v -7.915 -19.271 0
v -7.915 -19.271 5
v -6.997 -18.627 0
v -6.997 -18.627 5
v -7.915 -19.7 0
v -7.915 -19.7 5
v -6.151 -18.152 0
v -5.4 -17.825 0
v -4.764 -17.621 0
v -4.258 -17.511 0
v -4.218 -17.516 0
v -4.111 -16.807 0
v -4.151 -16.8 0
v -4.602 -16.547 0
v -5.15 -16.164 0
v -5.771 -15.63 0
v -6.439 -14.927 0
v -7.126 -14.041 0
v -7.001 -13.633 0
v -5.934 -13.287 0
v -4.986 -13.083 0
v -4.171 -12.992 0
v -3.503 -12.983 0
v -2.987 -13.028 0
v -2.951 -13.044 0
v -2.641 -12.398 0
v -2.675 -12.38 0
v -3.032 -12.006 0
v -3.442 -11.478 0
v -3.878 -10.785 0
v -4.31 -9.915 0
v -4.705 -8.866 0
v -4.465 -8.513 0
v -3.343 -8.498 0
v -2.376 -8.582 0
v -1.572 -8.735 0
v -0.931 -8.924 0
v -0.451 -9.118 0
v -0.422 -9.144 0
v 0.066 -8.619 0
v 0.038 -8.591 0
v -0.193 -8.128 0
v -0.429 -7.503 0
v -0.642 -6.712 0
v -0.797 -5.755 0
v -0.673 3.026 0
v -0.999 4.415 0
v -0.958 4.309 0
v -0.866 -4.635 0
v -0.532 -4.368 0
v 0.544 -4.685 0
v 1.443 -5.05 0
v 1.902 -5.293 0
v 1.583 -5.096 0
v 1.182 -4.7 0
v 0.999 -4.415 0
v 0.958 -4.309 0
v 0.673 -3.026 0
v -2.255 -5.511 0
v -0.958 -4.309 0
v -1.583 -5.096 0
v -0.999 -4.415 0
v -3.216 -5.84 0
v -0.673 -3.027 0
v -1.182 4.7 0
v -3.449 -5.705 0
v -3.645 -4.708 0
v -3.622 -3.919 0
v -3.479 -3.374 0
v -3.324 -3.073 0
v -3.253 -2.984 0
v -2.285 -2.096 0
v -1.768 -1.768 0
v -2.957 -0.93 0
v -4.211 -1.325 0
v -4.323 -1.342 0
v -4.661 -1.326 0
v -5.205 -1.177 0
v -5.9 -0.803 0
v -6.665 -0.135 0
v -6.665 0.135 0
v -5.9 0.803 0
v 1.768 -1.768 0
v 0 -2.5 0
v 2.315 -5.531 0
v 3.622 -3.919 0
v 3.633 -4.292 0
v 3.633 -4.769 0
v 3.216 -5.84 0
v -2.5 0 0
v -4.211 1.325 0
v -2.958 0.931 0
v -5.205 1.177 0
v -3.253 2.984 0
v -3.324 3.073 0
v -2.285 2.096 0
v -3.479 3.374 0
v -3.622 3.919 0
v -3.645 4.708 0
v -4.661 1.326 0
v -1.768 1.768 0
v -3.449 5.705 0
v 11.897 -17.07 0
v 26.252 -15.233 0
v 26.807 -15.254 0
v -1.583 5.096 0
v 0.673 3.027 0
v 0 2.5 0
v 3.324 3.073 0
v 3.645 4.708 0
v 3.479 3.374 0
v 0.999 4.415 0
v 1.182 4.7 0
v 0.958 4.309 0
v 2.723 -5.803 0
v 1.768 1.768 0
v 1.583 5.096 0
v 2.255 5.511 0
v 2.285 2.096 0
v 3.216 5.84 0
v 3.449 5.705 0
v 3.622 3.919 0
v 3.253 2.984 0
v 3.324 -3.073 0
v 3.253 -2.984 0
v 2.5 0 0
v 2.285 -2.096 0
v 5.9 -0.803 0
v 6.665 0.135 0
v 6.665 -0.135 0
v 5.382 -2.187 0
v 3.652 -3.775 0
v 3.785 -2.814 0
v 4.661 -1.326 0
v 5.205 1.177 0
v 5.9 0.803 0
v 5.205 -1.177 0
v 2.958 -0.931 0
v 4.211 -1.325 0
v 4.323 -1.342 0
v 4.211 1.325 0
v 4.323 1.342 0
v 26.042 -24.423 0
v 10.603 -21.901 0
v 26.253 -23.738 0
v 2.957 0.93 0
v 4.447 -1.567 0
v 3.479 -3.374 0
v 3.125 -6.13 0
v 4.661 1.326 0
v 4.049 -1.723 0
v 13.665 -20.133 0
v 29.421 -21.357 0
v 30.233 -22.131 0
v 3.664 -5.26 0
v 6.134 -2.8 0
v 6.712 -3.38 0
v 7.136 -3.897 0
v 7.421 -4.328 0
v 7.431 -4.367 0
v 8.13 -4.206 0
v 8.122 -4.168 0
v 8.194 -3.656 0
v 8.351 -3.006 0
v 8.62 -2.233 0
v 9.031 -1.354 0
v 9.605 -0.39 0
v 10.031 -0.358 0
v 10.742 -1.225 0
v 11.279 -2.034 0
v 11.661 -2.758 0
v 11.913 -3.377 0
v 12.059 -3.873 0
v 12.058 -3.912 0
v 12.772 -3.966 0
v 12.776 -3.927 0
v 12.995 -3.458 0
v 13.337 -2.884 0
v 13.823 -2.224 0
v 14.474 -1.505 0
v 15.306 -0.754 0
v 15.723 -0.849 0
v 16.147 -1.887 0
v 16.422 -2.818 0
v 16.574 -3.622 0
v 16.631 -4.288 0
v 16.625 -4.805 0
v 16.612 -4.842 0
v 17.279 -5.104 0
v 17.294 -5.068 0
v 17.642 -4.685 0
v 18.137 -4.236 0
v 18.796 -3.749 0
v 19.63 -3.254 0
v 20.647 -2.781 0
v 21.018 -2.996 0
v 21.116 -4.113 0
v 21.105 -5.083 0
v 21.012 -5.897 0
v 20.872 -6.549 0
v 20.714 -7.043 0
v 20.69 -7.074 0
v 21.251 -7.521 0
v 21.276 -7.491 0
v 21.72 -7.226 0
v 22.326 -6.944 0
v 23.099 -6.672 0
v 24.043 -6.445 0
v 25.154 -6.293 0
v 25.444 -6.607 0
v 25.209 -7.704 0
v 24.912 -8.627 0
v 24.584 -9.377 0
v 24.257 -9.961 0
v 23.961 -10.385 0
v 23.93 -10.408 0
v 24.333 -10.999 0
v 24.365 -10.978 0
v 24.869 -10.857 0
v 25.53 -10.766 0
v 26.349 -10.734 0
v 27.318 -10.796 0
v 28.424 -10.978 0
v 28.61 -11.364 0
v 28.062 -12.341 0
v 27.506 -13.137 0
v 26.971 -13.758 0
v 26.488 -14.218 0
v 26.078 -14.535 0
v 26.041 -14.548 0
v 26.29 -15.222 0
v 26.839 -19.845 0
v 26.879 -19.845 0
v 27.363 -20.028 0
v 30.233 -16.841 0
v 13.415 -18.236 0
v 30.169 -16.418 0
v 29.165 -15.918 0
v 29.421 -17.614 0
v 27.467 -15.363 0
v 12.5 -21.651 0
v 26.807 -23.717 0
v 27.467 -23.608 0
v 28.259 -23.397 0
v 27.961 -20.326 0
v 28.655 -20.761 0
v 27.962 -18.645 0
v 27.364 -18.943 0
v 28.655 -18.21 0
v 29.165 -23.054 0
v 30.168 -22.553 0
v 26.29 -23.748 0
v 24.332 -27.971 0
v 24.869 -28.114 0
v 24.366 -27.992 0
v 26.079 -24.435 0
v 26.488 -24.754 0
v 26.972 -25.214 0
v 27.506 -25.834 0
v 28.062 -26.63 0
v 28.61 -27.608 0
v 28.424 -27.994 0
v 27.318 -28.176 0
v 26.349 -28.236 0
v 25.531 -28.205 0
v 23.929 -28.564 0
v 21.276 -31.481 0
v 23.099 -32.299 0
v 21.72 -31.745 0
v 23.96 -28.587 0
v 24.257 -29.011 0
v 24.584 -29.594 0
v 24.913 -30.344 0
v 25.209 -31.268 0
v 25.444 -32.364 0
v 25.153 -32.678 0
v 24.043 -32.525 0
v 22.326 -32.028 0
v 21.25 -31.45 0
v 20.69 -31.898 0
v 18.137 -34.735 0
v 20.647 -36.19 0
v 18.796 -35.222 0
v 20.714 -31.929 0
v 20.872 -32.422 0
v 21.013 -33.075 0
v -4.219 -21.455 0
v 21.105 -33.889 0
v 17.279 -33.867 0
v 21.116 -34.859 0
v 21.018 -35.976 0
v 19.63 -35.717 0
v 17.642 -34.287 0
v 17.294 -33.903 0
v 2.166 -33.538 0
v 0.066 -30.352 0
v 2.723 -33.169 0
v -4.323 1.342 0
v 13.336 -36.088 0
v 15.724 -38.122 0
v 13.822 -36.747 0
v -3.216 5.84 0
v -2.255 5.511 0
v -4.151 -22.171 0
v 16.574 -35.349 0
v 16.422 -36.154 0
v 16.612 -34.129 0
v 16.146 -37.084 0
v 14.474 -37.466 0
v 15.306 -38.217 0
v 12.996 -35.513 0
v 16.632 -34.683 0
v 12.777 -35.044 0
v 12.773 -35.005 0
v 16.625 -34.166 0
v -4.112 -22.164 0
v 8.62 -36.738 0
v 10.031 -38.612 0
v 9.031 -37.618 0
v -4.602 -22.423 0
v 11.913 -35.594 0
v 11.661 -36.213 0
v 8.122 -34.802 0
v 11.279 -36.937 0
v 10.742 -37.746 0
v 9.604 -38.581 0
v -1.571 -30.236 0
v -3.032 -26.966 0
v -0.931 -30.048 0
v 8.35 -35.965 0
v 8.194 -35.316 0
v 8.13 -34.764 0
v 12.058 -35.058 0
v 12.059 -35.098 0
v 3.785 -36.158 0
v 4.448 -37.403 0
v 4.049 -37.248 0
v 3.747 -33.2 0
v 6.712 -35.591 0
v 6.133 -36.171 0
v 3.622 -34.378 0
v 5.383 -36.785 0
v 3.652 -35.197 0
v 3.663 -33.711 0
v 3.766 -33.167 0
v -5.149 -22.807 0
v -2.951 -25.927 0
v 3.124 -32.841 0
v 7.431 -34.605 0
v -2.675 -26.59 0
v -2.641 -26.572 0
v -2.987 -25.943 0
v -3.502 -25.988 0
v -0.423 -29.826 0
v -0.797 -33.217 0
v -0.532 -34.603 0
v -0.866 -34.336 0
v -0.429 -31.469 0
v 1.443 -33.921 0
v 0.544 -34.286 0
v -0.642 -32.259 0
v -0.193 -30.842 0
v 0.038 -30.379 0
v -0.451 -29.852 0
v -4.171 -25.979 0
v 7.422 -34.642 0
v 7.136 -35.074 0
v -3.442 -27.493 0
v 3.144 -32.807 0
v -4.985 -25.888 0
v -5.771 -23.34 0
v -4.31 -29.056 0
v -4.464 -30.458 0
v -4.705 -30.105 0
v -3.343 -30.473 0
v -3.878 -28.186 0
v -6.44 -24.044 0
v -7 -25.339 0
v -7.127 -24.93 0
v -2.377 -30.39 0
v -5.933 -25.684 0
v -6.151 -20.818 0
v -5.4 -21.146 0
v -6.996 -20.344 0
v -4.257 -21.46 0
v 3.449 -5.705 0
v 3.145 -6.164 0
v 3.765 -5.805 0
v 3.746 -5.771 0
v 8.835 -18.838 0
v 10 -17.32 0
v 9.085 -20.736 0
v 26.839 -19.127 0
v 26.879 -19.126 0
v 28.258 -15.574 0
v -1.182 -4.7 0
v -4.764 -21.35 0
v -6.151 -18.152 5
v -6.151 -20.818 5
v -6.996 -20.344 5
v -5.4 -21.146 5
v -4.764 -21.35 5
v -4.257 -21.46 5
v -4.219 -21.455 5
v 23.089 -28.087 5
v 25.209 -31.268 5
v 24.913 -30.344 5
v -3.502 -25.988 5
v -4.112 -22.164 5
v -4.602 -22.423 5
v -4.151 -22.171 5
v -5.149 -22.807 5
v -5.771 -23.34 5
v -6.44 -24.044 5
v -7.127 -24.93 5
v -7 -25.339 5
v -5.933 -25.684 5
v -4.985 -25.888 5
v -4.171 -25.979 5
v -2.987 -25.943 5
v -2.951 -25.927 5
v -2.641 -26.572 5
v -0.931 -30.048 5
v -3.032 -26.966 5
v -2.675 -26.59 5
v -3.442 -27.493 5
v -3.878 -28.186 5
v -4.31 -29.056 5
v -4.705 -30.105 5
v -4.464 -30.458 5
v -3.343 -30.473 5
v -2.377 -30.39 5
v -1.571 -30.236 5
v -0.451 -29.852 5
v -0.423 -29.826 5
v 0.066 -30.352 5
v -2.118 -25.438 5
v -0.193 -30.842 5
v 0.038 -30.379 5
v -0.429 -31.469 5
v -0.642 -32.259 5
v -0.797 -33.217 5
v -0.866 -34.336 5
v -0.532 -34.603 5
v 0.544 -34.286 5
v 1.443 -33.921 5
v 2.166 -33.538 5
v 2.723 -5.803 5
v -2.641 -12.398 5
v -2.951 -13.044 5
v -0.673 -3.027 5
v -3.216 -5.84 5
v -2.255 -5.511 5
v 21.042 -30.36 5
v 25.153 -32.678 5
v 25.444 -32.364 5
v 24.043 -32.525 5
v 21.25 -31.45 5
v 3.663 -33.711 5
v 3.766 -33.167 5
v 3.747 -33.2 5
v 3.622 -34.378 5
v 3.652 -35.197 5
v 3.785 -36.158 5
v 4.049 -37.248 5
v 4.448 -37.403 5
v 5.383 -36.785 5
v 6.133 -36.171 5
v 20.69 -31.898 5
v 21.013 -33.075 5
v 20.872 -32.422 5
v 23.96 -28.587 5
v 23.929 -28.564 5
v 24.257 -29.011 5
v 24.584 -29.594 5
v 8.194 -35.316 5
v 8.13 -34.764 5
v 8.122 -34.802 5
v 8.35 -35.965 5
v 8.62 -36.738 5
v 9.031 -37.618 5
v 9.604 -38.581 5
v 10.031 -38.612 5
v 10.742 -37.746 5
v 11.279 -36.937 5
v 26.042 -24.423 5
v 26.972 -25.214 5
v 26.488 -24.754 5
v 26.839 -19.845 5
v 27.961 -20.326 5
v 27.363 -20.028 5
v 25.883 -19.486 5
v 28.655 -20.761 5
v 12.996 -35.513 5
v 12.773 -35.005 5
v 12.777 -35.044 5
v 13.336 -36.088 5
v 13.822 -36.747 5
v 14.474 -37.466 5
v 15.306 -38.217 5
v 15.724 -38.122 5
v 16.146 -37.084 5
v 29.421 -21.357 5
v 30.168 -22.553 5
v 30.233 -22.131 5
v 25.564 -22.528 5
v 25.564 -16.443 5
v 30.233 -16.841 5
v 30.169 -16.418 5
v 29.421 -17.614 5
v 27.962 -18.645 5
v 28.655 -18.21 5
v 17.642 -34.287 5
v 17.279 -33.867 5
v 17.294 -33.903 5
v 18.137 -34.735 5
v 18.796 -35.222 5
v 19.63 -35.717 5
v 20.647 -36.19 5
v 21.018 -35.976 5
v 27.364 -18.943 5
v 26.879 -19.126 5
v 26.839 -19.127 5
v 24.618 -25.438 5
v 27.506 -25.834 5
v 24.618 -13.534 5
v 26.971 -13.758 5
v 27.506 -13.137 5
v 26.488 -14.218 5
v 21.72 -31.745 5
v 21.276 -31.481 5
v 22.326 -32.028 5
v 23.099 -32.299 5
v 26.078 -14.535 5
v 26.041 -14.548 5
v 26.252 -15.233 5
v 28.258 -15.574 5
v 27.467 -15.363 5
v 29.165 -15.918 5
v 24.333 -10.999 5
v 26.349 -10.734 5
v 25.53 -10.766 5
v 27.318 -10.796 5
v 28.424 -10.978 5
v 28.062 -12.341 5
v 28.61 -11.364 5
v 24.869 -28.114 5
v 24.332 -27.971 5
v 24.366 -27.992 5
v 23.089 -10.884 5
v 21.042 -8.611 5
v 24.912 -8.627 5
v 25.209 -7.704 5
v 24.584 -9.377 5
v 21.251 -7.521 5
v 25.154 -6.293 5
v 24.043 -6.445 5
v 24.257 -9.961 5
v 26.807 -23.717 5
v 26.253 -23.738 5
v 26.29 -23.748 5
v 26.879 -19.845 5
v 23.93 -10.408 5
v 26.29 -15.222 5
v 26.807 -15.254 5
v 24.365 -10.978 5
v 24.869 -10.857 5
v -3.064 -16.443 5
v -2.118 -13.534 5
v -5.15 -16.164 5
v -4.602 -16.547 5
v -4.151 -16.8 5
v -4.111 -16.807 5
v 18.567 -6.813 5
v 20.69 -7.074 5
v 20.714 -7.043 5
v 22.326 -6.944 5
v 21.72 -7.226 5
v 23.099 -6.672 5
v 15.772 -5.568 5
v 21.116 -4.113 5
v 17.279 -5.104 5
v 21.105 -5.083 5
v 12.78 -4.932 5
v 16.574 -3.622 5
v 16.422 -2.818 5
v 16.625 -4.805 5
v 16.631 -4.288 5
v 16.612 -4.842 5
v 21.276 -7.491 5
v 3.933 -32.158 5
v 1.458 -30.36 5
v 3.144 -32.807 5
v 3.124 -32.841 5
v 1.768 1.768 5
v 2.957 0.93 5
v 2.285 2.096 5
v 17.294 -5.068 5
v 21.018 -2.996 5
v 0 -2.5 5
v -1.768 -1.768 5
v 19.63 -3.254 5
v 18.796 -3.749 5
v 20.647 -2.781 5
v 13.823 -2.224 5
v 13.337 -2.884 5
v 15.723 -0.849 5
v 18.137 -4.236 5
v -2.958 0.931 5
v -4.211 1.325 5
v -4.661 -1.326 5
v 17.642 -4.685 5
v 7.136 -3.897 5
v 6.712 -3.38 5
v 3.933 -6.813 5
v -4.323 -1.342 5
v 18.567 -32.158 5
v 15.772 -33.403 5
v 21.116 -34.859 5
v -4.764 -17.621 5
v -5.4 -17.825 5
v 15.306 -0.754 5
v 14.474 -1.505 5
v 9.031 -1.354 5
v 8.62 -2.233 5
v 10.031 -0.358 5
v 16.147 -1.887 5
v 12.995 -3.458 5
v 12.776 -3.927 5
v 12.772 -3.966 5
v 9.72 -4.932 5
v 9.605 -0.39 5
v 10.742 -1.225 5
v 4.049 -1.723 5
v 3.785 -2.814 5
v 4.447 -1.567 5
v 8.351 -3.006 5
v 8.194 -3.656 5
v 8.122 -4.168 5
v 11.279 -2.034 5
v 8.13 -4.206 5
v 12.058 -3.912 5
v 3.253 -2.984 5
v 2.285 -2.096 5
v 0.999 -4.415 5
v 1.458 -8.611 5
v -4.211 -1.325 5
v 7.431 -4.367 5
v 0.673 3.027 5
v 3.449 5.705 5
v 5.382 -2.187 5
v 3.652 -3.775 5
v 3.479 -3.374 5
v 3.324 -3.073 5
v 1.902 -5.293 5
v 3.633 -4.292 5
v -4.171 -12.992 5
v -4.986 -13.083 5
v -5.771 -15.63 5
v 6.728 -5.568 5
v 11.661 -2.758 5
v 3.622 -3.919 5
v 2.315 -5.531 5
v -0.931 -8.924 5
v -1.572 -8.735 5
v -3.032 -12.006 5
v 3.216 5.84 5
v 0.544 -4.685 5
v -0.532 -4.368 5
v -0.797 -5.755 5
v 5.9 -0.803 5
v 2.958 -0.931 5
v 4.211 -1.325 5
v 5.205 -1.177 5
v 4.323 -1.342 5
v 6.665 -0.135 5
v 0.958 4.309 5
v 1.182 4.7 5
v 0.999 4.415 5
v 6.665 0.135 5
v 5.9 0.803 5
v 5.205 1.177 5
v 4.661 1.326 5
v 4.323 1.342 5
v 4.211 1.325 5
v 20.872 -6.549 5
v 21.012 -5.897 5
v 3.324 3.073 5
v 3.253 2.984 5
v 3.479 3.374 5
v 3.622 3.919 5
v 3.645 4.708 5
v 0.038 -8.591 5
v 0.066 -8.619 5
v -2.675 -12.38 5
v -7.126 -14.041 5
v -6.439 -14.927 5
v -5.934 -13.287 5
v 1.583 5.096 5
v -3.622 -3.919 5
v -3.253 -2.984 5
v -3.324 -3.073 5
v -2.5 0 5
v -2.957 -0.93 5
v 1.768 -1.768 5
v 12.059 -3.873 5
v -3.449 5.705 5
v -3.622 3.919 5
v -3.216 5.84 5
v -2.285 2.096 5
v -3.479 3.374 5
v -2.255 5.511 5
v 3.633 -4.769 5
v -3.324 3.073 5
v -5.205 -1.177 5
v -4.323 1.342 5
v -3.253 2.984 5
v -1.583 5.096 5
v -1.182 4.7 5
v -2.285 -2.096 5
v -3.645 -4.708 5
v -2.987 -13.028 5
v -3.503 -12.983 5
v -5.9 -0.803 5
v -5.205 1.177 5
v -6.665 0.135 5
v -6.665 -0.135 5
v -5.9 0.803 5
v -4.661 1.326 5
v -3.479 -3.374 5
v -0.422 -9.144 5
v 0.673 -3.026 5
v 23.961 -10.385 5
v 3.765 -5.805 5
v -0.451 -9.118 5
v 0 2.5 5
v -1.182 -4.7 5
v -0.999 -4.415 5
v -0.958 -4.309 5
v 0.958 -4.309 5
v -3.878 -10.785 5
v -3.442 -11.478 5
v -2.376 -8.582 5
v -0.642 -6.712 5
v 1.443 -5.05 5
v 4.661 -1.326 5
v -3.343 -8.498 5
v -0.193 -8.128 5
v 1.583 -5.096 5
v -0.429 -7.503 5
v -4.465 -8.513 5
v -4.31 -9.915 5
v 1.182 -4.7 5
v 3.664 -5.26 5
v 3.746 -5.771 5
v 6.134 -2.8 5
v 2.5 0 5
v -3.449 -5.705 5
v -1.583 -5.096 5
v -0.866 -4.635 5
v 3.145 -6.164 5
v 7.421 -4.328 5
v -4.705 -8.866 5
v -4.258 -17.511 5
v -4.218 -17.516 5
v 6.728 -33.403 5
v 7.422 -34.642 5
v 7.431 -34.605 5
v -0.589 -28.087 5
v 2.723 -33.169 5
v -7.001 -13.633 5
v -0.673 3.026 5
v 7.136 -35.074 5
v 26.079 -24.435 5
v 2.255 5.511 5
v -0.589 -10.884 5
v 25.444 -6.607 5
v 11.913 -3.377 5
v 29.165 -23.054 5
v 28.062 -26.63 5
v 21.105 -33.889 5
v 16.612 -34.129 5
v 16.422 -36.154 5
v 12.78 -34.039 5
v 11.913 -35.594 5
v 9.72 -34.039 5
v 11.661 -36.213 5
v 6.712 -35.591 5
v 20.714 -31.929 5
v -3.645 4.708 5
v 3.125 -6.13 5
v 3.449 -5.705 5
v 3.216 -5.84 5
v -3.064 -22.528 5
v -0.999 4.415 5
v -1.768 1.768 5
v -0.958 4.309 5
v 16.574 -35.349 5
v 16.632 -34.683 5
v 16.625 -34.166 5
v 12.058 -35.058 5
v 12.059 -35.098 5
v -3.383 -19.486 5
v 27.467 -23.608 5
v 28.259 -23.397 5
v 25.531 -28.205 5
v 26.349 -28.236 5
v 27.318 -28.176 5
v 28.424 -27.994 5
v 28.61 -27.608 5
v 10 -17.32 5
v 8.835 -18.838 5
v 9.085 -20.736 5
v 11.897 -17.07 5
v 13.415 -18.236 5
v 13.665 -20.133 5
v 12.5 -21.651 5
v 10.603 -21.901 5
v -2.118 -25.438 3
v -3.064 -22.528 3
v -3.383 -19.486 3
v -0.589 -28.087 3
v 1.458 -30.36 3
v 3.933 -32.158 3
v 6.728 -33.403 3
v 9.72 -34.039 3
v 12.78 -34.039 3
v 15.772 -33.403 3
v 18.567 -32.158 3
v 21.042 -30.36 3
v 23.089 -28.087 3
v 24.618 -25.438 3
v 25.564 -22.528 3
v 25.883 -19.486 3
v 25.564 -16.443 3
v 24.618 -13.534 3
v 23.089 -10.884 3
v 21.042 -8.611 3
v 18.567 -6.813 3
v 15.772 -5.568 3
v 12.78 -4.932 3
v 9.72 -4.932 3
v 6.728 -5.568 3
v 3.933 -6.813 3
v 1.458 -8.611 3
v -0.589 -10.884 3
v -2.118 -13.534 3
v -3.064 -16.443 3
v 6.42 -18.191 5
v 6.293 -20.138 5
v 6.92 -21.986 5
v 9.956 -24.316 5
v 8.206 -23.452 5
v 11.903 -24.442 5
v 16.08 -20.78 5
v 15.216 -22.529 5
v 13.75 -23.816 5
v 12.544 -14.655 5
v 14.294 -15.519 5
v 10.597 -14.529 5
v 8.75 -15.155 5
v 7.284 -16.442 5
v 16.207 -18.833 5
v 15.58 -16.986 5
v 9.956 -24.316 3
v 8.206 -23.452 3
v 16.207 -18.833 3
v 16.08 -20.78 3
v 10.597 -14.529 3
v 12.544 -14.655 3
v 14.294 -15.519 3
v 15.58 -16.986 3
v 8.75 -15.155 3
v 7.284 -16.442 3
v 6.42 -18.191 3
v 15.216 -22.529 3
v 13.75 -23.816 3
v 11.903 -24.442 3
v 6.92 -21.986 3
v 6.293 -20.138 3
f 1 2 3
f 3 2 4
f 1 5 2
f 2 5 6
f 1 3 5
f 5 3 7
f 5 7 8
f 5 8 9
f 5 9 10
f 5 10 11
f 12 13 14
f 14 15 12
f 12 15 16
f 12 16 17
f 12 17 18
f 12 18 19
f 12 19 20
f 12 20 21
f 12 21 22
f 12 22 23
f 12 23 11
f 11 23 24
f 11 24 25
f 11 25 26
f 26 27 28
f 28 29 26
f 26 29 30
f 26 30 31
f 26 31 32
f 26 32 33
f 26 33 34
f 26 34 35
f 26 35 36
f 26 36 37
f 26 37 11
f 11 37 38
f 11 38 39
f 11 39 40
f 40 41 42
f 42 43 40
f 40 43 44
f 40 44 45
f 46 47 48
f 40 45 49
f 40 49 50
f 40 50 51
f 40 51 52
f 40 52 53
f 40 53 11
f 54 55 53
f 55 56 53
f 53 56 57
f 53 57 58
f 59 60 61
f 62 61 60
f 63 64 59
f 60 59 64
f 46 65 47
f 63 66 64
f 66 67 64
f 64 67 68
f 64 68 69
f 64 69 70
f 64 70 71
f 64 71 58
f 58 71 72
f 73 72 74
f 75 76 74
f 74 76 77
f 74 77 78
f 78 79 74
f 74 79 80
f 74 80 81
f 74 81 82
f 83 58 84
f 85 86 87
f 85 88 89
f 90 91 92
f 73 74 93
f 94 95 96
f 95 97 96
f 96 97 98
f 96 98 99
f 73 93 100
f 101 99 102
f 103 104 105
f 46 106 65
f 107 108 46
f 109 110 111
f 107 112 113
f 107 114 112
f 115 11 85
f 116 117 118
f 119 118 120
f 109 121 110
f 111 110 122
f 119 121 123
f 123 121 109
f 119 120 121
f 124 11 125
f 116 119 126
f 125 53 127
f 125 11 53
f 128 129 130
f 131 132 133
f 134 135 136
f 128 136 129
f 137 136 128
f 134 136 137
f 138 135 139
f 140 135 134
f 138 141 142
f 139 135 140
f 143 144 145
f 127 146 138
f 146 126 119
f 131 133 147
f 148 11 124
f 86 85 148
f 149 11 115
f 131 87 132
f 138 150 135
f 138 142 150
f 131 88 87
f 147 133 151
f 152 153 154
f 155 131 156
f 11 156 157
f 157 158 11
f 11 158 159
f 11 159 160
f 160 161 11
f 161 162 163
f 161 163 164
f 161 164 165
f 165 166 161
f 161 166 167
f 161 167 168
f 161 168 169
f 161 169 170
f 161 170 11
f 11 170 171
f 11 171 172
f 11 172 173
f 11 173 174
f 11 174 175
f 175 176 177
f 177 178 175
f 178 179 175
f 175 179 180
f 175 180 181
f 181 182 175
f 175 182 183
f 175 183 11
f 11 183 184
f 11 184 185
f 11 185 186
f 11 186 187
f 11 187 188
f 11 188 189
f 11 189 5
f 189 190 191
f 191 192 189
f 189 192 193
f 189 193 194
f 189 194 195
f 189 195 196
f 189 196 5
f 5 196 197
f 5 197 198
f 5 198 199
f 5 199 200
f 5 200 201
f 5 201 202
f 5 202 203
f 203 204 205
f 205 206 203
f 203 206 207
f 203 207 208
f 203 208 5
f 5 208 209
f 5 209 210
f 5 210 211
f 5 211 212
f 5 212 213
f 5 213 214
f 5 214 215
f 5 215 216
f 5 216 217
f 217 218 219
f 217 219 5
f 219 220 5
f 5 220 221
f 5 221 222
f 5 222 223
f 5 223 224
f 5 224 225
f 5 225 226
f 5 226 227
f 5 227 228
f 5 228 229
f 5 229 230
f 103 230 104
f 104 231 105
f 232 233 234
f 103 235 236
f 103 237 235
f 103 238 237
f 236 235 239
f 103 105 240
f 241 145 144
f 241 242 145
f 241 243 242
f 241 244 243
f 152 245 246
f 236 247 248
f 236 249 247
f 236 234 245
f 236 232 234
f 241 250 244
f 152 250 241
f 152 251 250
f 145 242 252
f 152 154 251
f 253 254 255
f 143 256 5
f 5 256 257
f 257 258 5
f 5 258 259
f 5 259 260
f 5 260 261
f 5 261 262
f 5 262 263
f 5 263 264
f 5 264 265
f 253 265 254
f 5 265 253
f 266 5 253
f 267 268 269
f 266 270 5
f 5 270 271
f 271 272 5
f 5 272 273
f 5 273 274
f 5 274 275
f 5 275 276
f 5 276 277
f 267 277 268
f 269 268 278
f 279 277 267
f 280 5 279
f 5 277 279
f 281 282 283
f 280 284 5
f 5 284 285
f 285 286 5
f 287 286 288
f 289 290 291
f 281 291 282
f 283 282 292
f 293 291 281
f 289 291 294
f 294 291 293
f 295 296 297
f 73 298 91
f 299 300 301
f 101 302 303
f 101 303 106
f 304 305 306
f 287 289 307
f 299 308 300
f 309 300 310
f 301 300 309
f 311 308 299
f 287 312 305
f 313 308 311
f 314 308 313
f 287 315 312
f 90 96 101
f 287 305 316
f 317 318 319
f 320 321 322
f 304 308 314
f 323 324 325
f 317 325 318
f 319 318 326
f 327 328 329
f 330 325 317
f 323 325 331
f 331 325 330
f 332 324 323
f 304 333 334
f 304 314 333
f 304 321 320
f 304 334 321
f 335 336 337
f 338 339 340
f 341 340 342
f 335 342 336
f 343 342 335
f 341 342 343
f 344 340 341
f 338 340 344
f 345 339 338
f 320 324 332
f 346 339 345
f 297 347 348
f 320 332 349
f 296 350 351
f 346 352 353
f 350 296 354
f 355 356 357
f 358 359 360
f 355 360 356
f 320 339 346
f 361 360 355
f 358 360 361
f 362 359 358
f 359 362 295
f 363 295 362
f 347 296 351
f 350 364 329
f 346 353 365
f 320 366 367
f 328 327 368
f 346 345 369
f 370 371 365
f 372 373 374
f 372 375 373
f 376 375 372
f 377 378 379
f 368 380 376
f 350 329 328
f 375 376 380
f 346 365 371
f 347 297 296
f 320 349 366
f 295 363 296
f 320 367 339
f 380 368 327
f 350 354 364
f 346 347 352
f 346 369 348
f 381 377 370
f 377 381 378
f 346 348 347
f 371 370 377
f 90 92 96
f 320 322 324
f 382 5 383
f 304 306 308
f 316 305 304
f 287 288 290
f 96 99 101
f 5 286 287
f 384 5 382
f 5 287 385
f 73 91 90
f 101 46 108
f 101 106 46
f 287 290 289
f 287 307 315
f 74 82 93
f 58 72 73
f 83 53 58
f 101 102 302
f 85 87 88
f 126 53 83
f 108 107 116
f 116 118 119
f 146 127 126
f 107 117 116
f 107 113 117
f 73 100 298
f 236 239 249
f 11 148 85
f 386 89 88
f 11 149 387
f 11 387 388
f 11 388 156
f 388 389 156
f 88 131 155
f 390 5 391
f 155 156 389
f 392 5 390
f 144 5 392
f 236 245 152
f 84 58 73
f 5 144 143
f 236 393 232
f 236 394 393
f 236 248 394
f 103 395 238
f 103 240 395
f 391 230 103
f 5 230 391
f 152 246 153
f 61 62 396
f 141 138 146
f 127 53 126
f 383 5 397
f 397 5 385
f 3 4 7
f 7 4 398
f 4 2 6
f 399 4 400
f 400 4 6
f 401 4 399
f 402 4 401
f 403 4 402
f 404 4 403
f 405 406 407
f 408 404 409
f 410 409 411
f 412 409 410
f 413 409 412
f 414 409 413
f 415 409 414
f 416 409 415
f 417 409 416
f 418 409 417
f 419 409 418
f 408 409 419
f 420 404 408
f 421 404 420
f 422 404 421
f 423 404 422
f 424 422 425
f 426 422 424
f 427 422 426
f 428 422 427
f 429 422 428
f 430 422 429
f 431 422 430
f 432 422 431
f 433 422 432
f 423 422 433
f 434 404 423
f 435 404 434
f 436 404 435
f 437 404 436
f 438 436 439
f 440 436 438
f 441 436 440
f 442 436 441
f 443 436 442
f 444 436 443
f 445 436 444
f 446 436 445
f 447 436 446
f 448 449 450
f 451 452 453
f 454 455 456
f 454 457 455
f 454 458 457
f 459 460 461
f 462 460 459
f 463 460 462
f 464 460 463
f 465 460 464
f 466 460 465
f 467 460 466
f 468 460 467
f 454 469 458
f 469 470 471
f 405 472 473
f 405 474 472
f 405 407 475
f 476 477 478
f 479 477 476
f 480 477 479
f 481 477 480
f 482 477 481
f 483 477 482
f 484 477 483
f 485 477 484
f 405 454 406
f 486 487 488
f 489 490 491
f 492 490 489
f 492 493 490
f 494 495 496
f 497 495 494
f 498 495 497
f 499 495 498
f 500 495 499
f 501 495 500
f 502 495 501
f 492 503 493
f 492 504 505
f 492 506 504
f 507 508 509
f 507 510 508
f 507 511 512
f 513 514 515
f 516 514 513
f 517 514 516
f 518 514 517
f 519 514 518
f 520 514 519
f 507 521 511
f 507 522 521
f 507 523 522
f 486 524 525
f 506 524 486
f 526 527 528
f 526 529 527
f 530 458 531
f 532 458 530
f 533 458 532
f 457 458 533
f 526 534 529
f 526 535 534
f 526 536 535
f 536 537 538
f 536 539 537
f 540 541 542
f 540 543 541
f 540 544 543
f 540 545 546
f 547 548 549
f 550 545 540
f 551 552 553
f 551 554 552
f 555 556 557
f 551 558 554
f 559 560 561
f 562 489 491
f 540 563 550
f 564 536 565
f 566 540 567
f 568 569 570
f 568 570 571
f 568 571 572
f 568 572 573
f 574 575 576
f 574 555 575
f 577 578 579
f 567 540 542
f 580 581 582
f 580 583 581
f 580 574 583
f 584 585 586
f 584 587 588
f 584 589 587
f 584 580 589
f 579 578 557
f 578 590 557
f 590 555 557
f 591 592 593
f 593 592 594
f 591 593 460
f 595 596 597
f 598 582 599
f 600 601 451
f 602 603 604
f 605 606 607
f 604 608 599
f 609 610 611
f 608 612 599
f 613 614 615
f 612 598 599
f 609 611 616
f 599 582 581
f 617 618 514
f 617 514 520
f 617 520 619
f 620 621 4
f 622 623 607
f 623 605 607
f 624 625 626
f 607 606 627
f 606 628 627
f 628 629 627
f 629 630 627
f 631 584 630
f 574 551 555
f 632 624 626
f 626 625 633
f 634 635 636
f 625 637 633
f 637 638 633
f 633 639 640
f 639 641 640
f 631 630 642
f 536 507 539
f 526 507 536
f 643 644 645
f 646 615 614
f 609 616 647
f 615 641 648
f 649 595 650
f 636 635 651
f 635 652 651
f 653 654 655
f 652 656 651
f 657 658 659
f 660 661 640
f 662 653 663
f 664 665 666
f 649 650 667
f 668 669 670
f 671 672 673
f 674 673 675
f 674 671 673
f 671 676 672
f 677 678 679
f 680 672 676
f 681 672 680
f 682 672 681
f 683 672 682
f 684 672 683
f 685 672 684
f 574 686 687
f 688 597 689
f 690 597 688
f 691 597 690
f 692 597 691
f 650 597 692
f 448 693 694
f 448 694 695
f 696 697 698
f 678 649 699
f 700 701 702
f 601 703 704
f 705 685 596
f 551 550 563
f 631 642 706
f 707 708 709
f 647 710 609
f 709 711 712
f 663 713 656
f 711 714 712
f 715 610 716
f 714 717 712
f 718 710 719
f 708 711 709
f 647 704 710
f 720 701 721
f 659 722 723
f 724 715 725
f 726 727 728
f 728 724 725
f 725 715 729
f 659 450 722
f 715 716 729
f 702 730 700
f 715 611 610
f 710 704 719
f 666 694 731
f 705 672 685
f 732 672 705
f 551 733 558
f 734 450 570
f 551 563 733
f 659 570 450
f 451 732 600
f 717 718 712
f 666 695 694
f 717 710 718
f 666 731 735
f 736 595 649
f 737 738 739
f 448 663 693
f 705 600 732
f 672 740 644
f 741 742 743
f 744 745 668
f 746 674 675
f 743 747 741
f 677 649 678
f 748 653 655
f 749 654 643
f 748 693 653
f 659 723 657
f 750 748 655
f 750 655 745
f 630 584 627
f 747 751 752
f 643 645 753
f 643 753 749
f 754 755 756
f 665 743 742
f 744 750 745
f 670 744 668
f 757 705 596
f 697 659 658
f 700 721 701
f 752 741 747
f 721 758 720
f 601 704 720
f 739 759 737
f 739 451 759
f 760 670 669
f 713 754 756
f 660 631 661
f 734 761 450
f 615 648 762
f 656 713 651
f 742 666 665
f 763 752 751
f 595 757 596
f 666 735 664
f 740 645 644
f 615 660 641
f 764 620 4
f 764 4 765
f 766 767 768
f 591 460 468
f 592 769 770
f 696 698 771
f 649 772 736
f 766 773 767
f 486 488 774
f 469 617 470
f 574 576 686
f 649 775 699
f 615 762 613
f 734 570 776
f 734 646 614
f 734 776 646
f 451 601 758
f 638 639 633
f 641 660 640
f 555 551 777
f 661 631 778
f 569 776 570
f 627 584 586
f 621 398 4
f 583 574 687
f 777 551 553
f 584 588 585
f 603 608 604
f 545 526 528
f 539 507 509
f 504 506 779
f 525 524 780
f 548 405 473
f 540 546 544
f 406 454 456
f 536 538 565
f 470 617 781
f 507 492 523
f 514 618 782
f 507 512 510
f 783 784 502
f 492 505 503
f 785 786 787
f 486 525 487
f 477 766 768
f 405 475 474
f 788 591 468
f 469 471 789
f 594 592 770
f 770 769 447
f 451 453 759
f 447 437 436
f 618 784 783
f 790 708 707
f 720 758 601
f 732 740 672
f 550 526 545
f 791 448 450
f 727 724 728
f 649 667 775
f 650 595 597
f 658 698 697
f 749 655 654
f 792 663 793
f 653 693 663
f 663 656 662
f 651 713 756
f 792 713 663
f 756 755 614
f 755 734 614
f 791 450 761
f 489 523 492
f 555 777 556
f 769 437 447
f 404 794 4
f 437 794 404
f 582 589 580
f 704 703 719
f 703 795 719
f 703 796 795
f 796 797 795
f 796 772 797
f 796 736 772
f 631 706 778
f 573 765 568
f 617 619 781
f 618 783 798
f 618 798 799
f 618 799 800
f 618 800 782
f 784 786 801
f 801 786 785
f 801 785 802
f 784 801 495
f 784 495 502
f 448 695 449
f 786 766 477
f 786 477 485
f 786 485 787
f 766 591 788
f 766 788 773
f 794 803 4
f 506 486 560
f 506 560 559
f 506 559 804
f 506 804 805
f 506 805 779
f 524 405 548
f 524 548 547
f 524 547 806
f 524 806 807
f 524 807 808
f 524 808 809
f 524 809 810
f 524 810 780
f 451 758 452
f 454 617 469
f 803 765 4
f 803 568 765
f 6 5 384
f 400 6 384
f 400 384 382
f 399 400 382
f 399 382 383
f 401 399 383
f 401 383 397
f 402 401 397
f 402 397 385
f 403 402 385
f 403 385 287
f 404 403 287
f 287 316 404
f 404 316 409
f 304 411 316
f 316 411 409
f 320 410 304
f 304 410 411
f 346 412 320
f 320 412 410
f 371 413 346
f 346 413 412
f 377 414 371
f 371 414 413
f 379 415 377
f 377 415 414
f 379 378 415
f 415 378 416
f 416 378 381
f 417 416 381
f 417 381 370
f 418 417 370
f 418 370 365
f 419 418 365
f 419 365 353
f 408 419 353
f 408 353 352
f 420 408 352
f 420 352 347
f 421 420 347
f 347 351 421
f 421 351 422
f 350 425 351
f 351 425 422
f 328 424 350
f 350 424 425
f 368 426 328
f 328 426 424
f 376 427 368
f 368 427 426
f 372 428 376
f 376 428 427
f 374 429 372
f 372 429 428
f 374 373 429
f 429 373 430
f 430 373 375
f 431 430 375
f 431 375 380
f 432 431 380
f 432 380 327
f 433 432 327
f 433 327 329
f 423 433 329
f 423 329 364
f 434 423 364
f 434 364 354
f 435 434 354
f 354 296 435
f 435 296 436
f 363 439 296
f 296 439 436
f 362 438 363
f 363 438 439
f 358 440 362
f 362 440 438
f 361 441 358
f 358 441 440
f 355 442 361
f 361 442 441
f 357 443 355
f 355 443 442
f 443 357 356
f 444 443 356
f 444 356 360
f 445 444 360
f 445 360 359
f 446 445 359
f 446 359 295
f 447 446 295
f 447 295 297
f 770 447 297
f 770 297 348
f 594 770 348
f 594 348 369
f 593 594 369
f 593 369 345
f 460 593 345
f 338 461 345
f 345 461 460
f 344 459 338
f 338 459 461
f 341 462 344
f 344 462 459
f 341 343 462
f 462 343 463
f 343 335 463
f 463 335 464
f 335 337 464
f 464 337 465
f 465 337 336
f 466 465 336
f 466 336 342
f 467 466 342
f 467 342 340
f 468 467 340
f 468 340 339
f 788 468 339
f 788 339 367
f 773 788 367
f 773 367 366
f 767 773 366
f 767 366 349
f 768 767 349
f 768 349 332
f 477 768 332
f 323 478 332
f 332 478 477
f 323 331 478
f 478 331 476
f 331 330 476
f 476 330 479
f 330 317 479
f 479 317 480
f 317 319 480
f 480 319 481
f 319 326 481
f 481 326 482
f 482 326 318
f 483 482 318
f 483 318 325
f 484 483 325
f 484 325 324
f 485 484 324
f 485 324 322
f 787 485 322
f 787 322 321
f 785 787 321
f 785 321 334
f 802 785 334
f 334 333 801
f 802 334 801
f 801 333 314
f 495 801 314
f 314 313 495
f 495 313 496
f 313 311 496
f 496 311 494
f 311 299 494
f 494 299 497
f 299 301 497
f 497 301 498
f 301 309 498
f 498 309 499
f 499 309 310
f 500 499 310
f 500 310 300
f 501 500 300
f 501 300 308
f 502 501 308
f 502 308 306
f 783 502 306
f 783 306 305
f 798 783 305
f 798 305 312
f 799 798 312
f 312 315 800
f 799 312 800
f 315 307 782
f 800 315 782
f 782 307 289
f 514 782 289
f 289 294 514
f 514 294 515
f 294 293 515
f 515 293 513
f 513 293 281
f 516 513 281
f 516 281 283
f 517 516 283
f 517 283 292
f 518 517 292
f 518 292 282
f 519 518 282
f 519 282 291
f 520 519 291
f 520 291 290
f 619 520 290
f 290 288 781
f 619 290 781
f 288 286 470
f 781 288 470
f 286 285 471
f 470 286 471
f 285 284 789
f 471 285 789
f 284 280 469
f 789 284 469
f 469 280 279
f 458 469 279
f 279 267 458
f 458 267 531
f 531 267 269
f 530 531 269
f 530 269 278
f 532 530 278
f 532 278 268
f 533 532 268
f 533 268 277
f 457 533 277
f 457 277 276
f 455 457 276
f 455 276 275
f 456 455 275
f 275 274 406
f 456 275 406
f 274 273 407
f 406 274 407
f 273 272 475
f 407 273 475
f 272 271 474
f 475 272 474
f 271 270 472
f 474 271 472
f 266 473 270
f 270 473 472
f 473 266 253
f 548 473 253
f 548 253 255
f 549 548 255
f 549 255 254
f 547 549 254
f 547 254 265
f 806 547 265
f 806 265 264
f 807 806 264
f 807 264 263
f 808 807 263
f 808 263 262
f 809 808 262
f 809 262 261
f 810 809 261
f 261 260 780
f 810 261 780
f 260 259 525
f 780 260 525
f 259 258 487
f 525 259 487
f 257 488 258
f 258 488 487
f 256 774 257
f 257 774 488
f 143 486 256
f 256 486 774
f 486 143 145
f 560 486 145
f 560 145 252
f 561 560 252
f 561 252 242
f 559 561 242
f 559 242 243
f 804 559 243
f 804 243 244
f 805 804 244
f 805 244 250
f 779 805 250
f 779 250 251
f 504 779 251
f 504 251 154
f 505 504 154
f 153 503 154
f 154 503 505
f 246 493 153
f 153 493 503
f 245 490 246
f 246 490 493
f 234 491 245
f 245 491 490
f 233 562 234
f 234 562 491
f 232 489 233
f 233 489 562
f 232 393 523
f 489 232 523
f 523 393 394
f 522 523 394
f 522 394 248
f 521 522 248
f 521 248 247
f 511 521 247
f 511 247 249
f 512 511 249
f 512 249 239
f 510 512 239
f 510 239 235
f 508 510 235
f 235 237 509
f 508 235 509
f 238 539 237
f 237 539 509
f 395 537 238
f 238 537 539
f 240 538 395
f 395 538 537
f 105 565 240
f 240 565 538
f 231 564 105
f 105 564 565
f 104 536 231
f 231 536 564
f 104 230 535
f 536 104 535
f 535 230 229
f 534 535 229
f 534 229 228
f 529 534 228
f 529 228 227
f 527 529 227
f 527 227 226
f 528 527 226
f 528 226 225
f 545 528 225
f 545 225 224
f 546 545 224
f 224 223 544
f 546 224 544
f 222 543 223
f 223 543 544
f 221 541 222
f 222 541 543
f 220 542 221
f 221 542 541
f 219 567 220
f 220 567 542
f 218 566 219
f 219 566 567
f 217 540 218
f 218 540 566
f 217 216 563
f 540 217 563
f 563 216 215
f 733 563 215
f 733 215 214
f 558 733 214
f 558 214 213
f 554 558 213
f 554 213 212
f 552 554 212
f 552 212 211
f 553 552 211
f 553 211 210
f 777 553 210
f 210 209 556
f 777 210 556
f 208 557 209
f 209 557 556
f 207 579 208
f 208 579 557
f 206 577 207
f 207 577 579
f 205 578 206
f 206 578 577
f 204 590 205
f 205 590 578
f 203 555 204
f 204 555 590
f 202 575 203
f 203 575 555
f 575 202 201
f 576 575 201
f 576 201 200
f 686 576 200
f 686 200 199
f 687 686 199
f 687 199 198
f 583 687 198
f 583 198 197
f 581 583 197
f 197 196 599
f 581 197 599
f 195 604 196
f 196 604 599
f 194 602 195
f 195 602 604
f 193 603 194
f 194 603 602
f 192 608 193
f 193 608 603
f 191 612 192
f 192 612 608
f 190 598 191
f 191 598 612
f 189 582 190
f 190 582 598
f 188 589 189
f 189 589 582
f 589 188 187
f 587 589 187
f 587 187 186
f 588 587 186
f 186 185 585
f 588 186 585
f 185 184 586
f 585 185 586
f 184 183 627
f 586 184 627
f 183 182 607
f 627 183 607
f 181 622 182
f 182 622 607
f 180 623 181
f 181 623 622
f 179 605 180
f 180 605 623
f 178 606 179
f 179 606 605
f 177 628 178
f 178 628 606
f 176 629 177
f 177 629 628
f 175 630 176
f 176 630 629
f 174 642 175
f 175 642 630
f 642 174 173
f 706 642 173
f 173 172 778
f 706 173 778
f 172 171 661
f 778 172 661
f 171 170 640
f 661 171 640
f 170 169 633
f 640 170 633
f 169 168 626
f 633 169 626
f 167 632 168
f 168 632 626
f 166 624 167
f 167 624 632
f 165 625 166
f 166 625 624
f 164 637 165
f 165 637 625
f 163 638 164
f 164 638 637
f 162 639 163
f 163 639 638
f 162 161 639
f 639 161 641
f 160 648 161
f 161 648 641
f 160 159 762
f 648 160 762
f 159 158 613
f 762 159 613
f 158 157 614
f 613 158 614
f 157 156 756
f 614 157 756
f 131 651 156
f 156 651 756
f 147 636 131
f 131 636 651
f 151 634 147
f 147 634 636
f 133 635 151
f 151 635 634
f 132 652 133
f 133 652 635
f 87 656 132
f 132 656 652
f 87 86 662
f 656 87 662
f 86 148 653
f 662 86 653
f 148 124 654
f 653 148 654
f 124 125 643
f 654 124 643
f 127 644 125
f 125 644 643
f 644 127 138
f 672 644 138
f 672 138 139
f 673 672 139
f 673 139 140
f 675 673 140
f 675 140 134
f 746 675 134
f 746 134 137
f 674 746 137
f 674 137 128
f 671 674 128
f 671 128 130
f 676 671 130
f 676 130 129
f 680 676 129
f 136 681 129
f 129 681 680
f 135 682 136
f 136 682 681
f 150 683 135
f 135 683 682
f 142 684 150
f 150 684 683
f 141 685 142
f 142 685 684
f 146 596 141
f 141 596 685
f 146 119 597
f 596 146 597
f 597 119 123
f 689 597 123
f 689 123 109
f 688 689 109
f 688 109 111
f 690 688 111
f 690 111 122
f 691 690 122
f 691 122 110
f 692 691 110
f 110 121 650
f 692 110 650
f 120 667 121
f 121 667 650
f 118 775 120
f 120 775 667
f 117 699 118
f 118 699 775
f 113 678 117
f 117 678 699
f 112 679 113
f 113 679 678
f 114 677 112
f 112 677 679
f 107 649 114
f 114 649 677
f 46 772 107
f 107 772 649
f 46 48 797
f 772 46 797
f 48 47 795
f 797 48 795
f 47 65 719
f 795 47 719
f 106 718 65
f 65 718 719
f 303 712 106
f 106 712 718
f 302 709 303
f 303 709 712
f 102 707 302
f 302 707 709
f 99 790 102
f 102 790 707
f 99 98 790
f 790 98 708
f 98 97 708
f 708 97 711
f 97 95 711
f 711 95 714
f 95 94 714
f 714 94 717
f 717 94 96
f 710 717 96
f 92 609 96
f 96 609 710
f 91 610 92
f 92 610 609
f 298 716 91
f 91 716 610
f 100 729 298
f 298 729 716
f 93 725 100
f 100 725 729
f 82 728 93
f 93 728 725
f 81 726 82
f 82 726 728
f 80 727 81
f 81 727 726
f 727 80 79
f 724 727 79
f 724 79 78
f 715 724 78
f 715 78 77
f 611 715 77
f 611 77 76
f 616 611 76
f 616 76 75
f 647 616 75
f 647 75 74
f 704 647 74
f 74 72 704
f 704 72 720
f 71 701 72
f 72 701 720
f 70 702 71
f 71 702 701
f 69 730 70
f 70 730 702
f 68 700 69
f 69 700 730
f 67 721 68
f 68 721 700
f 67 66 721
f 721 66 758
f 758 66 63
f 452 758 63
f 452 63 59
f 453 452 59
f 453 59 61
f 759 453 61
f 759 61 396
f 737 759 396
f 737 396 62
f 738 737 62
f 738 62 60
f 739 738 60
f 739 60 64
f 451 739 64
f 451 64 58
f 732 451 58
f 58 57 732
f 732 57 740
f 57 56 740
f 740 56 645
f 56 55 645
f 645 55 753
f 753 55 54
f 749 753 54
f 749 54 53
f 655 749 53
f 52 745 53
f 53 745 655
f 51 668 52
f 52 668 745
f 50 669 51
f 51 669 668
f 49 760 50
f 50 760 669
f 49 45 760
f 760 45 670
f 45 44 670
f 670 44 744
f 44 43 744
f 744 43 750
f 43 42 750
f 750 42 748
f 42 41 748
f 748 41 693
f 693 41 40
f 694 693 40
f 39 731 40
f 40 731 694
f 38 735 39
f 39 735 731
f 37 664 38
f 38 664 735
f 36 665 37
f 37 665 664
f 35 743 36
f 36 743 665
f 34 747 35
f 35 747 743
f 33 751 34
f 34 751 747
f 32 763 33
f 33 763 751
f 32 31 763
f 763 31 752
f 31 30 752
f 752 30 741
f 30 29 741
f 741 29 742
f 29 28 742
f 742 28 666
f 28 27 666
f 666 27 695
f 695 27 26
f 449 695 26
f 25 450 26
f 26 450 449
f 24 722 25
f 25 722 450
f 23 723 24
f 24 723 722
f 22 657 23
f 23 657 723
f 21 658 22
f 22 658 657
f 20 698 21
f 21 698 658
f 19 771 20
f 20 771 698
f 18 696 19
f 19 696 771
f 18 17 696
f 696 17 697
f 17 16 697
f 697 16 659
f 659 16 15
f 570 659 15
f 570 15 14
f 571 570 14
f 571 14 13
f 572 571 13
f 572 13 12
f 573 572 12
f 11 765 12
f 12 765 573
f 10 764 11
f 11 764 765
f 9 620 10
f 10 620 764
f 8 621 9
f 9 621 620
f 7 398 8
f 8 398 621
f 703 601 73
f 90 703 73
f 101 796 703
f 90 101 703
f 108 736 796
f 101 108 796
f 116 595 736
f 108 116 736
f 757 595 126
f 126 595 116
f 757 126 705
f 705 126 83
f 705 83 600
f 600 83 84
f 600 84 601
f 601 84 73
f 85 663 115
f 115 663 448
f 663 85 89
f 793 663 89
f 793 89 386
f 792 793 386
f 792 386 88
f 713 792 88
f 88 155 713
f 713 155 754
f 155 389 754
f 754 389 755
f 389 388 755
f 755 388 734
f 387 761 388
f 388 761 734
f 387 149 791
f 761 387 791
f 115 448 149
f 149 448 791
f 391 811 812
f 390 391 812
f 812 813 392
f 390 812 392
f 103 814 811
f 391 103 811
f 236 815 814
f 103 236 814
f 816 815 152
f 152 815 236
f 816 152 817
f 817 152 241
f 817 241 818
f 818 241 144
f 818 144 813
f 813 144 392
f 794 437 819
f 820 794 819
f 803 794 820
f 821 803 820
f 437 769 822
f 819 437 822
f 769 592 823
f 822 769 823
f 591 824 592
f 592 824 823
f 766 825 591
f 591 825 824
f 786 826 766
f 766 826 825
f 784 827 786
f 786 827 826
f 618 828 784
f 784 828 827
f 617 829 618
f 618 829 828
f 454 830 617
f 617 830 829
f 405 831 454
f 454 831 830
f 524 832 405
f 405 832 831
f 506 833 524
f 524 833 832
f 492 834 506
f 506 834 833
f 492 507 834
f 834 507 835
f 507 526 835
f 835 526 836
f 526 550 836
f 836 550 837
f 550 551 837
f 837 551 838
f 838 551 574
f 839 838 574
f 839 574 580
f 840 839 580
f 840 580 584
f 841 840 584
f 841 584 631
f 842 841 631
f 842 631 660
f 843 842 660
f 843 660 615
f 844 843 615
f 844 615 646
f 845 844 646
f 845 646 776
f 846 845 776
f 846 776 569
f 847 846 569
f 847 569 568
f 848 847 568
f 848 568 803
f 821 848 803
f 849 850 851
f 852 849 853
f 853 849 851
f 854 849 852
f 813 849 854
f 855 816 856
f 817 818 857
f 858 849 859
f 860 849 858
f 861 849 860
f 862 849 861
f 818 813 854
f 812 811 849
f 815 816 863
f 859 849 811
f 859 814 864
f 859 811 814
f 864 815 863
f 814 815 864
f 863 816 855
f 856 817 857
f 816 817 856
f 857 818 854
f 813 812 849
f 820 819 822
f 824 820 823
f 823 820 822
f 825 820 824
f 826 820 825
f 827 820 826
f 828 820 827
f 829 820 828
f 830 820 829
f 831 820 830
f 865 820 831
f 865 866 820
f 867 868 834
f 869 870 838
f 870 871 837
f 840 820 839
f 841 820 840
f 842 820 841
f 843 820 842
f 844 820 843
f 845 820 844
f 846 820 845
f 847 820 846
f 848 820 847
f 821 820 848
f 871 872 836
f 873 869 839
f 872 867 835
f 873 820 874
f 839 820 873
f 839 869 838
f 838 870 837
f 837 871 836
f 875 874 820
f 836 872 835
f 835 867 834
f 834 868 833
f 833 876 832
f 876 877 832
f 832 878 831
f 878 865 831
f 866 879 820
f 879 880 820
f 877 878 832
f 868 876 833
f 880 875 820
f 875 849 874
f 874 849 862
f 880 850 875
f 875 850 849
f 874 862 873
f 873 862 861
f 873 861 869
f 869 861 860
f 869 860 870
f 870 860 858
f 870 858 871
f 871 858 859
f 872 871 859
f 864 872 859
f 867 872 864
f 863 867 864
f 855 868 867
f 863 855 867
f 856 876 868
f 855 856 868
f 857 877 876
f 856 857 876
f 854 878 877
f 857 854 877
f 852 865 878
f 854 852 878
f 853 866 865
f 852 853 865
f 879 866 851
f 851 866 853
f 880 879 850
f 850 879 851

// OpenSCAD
use <MCAD/involute_gears.scad>

gear (number_of_teeth=6,  // 歯車の数
    circular_pitch=300,
    hub_diameter=0,
    rim_width=5,
    rim_thickness=5,              // 外側の
    ressure_angle=31);
rotate ([0,0,360*5/6])
translate ([22.5,0,0])
gear (number_of_teeth=21,// 歯車の数
    circular_pitch=300,
    bore_diameter=5,            // 中心の穴の直径
    hub_diameter=10,           // 中心部の直径
    hub_thickness=5,             // 中心部の厚さ
    rim_width=1,                     // 外側の厚さ
    rim_thickness=5,              // 外側の厚さ
    gear_thickness=3,            //ギアの厚さ
    pressure_angle=31);
